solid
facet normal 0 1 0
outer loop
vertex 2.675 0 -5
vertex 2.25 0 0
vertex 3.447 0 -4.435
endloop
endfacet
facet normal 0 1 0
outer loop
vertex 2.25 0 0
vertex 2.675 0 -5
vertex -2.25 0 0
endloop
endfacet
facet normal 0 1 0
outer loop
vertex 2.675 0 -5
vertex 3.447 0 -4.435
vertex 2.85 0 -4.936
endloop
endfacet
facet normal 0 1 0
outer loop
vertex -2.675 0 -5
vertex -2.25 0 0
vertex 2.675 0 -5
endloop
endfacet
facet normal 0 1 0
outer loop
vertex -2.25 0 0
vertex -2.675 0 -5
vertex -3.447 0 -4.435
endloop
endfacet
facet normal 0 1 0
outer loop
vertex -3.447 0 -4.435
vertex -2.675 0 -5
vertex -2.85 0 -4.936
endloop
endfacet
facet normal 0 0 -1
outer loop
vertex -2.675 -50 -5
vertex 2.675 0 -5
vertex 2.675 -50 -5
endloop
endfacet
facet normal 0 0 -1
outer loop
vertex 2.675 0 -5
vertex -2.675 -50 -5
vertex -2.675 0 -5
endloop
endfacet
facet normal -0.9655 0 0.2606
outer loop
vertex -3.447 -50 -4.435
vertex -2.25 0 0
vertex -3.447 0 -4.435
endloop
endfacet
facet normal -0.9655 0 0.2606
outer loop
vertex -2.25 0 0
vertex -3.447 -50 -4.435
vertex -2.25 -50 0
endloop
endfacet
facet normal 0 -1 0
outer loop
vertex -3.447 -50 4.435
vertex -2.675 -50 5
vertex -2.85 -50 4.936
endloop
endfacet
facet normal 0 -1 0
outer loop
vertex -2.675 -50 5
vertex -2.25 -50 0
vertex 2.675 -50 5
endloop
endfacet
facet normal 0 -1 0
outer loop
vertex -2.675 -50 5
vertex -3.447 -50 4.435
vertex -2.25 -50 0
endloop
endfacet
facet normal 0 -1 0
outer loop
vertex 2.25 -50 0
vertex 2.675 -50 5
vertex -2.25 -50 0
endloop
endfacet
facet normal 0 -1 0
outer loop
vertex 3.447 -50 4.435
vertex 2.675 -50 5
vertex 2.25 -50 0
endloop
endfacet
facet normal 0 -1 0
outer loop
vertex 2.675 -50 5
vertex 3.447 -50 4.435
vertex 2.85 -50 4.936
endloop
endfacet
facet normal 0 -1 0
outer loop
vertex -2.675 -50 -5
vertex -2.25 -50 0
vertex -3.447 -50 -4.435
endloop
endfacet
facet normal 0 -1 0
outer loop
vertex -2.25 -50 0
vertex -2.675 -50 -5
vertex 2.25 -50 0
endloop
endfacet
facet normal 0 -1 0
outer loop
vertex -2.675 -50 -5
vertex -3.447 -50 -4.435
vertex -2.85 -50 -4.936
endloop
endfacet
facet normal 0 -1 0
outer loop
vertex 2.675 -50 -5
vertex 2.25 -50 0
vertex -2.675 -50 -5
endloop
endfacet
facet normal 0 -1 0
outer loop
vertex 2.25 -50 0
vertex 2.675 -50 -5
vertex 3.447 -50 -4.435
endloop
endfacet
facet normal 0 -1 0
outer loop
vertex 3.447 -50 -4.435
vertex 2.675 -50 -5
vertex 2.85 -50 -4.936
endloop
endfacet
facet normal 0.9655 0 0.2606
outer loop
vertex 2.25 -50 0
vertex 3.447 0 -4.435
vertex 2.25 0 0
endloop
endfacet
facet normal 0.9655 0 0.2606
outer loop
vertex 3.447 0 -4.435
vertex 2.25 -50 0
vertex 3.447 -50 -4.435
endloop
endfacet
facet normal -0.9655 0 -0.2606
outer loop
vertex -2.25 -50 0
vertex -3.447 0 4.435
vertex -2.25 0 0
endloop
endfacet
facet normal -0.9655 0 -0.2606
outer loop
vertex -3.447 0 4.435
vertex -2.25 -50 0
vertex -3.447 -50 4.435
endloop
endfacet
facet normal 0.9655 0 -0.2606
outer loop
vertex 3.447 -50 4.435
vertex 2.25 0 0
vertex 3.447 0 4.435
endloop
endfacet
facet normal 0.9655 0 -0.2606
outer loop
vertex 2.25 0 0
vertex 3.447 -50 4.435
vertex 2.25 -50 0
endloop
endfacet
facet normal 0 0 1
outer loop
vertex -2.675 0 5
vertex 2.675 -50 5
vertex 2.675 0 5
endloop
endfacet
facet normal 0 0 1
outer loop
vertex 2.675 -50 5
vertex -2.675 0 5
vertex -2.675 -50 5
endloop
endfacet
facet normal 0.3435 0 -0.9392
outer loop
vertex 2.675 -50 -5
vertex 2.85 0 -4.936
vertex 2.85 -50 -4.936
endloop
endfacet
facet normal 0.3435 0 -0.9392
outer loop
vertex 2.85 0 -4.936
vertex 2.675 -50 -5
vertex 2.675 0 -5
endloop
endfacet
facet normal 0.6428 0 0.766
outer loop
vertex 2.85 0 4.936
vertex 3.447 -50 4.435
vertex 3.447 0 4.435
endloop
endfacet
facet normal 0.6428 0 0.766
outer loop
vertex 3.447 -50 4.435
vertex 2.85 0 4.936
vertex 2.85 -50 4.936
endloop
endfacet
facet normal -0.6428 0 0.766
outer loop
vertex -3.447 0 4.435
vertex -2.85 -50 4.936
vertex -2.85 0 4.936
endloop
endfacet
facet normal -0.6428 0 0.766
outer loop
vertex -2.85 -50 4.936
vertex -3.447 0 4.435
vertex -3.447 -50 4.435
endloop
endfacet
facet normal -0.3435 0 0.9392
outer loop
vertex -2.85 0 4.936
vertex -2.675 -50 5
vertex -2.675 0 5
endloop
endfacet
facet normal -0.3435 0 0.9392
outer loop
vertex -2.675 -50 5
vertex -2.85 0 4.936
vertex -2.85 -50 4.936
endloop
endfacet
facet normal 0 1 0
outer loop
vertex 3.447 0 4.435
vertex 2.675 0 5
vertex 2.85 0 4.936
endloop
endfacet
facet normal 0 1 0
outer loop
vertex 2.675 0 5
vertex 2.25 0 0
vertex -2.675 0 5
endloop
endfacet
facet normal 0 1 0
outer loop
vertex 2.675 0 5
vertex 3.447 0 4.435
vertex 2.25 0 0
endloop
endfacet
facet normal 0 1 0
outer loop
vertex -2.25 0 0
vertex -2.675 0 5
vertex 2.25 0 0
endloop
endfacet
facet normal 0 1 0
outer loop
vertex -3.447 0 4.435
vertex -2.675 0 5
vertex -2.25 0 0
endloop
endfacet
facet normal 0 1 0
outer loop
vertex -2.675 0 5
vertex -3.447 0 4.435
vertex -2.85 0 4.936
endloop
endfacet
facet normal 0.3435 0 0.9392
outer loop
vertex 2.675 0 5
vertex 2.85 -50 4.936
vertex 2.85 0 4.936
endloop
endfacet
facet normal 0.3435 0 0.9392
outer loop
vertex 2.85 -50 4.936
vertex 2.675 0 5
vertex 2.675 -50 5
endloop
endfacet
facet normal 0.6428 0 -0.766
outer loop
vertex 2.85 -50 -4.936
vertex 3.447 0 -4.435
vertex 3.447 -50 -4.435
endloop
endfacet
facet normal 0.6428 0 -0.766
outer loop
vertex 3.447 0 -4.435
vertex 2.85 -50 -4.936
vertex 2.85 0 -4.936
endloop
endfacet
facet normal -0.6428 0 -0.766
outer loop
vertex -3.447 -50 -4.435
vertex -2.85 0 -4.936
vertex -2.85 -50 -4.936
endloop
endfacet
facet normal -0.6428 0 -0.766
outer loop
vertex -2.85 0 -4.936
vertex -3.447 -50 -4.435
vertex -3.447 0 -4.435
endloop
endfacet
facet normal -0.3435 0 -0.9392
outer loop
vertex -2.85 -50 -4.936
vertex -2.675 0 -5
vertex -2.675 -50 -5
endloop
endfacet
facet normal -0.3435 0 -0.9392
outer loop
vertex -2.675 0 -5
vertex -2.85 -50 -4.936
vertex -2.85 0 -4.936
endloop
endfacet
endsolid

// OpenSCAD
// file: globals.scad
/*
Most things in this file is represented as one millimeter, so keep that in mind while changing things.
Some of the setting are not mm but at variables that you can set, such as 2*x=2x and you are setting what x is.
I will try to specify when things are variables and not exact measurements.
*/

obj_leg = 30;
leg_length = 5.5;
small_number = 0.001;
metal_core_rode_global = 5;


///////////////// number of holes /////////////////////
z_hole_number = 8;
other_holes = 8;

///////////////// Pins /////////////////////

//pins that poke out
ball_size = 10;
pin_height = 20;
pin_diameter = 6;


//holes
hole_ball_size = ball_size;
hole_pin_height = pin_height;
hole_pin_diameter = pin_diameter;

///////////////// Z THINGS /////////////////////

berring_slot_width = 7.5;
berring_slot_depth = 6.5;
metal_core_rode = 5;

///////////////// X THINGS /////////////////////

//male dove tails
max_width=8;
min_width=5;
depth=5;
height=obj_leg/2;

//female dove tails, this is found on the y mounts
girl_max_width=11;
girl_min_width=5;
girl_depth=5;
girl_height=obj_leg;


///////////////// Y THINGS /////////////////////
/*
The Y is so normal that all of those global variables at the top should change all of the setting in it, this section is set her incase there are variables set in the future development of this project.
*/
// file: include.scad
//////////////////      END SECTION       //////////////////

	module added_pins(){
		difference(){
			union(){
				translate([30/(15/4),obj_leg*leg_length,30/(15/4)]) pin();
				translate([30/(15/4)+14.5,obj_leg*leg_length,30/(15/4)+14]) pin();
			}
			union(){
							translate([30/(15/4)+13.5,obj_leg*leg_length-20,30/(15/4)+5])cube(size=[2,40,15]);
							translate([30/(15/4)+7.5,obj_leg*leg_length-20,30/(15/4)+15])rotate([0,90,0]) cube(size=[2,40,15]);	

							translate([30/(15/4)-1,obj_leg*leg_length-20,30/(15/4)-8])cube(size=[2,40,15]);
							translate([30/(15/4)-10,obj_leg*leg_length-20,30/(15/4)+1])rotate([0,90,0]) cube(size=[2,40,15]);
			}
		}
	}
	module taken_pins() {
		translate([30/(15/4)+14,obj_leg*leg_length-10,30/(15/4)]) mirror_pin();
		translate([30/(15/4),obj_leg*leg_length-10,30/(15/4)+15]) mirror_pin();
	}


//////////////////      OTHER STUFF       //////////////////

	module holes() {
		rotate([0,0,90]) for(y=[0:other_holes])
		translate([obj_leg+y*15,-15.5,7.5]) union() {
			translate([7.5,0,15]) hole_up();
			hole_down();
		}
	}
	module extend_holes() {
	module top(){
		rotate([0,0,90]) for(y=[0:other_holes+1])
		translate([(30/4)+y*15,-15.5,7.5]) union() {
			translate([7.5,0,15]) hole_up();
		}
	}
	module bottom(){
		rotate([0,0,90]) for(y=[0:other_holes+2])
		translate([(30/4)+y*15,-15.5,7.5]) union() {
			hole_down();
		
}
	}
	union(){
		top();
		bottom();
	}
	}

	module hole() {
		union() {
			rotate([90, 90, 0]) cylinder(h=40, d=hole_pin_diameter, center=true);
			translate([0,7.5,0]) sphere(d=hole_ball_size);
			translate([0,-6,0]) sphere(d=hole_ball_size);
		}
	}
	module hole_up() {
		union() {
			rotate([90, 90, 0]) cylinder(h=40, d=hole_pin_diameter, center=true);
			translate([0,7.5,10]) cylinder(h=hole_pin_height, d=hole_pin_diameter, center=true);
			translate([0,-6,10]) cylinder(h=hole_pin_height, d=hole_pin_diameter, center=true);
			translate([0,7.5,0]) sphere(d=hole_ball_size);
			translate([0,-6,0]) sphere(d=hole_ball_size);
		}
	}
	module hole_down() {
		union() {
			rotate([90, 90, 0]) cylinder(h=40, d=hole_pin_diameter, center=true);
			translate([0,7.5,-10]) cylinder(h=hole_pin_height, d=hole_pin_diameter, center=true);
			translate([0,-6,-10]) cylinder(h=hole_pin_height, d=hole_pin_diameter, center=true);
			translate([0,7.5,0]) sphere(d=hole_ball_size);
			translate([0,-6,0]) sphere(d=hole_ball_size);
		}
	}
	module pin() {
		union() {
			rotate([90, 90, 0]) cylinder(h=pin_height, d=pin_diameter, center=true);
			translate([0,7.5,0]) sphere(d=ball_size);
		}
	}

	module mirror_pin() {
		rotate([90, 90, 0]) cylinder(h=hole_pin_height+small_number, d=hole_pin_diameter, center=true);
		translate([0,-(pin_height-(ball_size/2)),0]) sphere(d=ball_size);
	}


//////////////////      SOME RACK AND Z THINGS       //////////////////

module z_holes() {
    rotate([0,-90,0]) for(z=[0:z_hole_number])
    translate([22.5+z*15,16,-12])
        hole();
}

module pin_cuts() {
	union(){
		cube(size=[2,10,40], center=true);
		rotate([0,0,90]) cube(size=[2,10,40], center=true);
	}
}
module pin_uncut() {
	union(){
		rotate([0, 0, 90]) cylinder(h=hole_pin_height, d=hole_pin_diameter, center=true);
		translate([0,0,10]) sphere(d=ball_hole);
	}
}


module pin_out() {
	union(){
		rotate([0, 0, 90]) cylinder(h=pin_height, d=pin_diameter, center=true);
		translate([0,0,10]) sphere(d= ball_size);
	}
}


module pins_z(){
	difference() {
		pin_out();
		pin_cuts();
	}
}
//////////////////      RACK AND SLIDE     ///////////////////

module straight_pins() {
	for(z=[0:((((obj_leg*leg_length)*2)-(obj_leg*2))/3)/14.5]) rotate([-90,0,0]) translate([z*15,30/(15/4),14]) pins_z();
	for(z=[0:((((obj_leg*leg_length)*2)-(obj_leg*2))/3)/14.5]) rotate([-90,0,0]) translate([z*15,30/(15/4)-14,14]) pins_z();
}
module stagger_pins() {
	for(z=[0:((((obj_leg*leg_length)*2)-(obj_leg*2))/3)/14.5]) rotate([-90,0,0]) translate([z*15,30/(15/4),14]) pins_z();
	for(z=[0:((((obj_leg*leg_length)*2)-(obj_leg*2))/3)/14.5]) rotate([-90,0,0]) translate([z*15+7,30/(15/4)-14,14]) pins_z();
}


//////////////////      DOVE TAIL       //////////////////

module male_dovetail(height) {
	dovetail_3d(max_width,min_width,depth,height);
}

module dovetail_3d(max_width=11, min_width=5, depth=5, height=30) {
	linear_extrude(height=height, convexity=2)
		dovetail_2d(max_width,min_width,depth);
}

module dovetail_2d(max_width=11, min_width=5, depth=5) {
	angle=atan((max_width/2-min_width/2)/depth);
	echo("angle: ", angle);
	polygon(paths=[[0,1,2,3,0]], points=[[-min_width/2,0], [-max_width/2,depth], [max_width/2, depth], [min_width/2,0]]);
}

//bow tie
	module tie_end(height){
				rotate([0,0,0]) translate([0,-0.01,((obj_leg/2)/2)]) male_dovetail(height);
				rotate([0,90,0]) translate([0,-0.01,((obj_leg/2)/2)]) male_dovetail(height);
				rotate([0,180,0]) translate([0,-0.01,((obj_leg/2)/2)]) male_dovetail(height);
				rotate([0,-90,0]) translate([0,-0.01,((obj_leg/2)/2)]) male_dovetail(height);
	}

module bow_support(){
	difference(){
		intersection(){
			translate([-15,0,-15]) cube([30,9,30]);
			scale([1.05,1.05,1.05]) rotate([0,45,0]) tie_end();
		}
		cube([29.2,29.2,29.2], center=true);
	}
}

	module wrap(){
		depth = 30;
				translate([-15,30,15]) rotate([90,180,90]) male_dovetail(height=depth);
				rotate([0,90,0]) translate([-15,30,15]) rotate([90,180,90]) male_dovetail(height=depth);
				rotate([0,180,0]) translate([-15,30,15]) rotate([90,180,90]) male_dovetail(height=depth);
				rotate([0,-90,0]) translate([-15,30,15]) rotate([90,180,90]) male_dovetail(height=depth);
	}
// main file
length = 50;
tilt_level = 1.1;
scaling_x = .9;
scaling_y = 1;
scaling_z = 1;
include <include.scad>;
include <globals.scad>;

obj_leg= 12;
module bow_tie_master(){
	union(){
		mirror([0,1,0]){
			male_dovetail(height=length);
		}
			male_dovetail(height=length);		
	}
}

intersection(){
scale([scaling_x,scaling_y,scaling_z])	rotate([90,0,0]) bow_tie_master();
rotate([90,0,0]) cylinder(r=5.7, h=200);
}
